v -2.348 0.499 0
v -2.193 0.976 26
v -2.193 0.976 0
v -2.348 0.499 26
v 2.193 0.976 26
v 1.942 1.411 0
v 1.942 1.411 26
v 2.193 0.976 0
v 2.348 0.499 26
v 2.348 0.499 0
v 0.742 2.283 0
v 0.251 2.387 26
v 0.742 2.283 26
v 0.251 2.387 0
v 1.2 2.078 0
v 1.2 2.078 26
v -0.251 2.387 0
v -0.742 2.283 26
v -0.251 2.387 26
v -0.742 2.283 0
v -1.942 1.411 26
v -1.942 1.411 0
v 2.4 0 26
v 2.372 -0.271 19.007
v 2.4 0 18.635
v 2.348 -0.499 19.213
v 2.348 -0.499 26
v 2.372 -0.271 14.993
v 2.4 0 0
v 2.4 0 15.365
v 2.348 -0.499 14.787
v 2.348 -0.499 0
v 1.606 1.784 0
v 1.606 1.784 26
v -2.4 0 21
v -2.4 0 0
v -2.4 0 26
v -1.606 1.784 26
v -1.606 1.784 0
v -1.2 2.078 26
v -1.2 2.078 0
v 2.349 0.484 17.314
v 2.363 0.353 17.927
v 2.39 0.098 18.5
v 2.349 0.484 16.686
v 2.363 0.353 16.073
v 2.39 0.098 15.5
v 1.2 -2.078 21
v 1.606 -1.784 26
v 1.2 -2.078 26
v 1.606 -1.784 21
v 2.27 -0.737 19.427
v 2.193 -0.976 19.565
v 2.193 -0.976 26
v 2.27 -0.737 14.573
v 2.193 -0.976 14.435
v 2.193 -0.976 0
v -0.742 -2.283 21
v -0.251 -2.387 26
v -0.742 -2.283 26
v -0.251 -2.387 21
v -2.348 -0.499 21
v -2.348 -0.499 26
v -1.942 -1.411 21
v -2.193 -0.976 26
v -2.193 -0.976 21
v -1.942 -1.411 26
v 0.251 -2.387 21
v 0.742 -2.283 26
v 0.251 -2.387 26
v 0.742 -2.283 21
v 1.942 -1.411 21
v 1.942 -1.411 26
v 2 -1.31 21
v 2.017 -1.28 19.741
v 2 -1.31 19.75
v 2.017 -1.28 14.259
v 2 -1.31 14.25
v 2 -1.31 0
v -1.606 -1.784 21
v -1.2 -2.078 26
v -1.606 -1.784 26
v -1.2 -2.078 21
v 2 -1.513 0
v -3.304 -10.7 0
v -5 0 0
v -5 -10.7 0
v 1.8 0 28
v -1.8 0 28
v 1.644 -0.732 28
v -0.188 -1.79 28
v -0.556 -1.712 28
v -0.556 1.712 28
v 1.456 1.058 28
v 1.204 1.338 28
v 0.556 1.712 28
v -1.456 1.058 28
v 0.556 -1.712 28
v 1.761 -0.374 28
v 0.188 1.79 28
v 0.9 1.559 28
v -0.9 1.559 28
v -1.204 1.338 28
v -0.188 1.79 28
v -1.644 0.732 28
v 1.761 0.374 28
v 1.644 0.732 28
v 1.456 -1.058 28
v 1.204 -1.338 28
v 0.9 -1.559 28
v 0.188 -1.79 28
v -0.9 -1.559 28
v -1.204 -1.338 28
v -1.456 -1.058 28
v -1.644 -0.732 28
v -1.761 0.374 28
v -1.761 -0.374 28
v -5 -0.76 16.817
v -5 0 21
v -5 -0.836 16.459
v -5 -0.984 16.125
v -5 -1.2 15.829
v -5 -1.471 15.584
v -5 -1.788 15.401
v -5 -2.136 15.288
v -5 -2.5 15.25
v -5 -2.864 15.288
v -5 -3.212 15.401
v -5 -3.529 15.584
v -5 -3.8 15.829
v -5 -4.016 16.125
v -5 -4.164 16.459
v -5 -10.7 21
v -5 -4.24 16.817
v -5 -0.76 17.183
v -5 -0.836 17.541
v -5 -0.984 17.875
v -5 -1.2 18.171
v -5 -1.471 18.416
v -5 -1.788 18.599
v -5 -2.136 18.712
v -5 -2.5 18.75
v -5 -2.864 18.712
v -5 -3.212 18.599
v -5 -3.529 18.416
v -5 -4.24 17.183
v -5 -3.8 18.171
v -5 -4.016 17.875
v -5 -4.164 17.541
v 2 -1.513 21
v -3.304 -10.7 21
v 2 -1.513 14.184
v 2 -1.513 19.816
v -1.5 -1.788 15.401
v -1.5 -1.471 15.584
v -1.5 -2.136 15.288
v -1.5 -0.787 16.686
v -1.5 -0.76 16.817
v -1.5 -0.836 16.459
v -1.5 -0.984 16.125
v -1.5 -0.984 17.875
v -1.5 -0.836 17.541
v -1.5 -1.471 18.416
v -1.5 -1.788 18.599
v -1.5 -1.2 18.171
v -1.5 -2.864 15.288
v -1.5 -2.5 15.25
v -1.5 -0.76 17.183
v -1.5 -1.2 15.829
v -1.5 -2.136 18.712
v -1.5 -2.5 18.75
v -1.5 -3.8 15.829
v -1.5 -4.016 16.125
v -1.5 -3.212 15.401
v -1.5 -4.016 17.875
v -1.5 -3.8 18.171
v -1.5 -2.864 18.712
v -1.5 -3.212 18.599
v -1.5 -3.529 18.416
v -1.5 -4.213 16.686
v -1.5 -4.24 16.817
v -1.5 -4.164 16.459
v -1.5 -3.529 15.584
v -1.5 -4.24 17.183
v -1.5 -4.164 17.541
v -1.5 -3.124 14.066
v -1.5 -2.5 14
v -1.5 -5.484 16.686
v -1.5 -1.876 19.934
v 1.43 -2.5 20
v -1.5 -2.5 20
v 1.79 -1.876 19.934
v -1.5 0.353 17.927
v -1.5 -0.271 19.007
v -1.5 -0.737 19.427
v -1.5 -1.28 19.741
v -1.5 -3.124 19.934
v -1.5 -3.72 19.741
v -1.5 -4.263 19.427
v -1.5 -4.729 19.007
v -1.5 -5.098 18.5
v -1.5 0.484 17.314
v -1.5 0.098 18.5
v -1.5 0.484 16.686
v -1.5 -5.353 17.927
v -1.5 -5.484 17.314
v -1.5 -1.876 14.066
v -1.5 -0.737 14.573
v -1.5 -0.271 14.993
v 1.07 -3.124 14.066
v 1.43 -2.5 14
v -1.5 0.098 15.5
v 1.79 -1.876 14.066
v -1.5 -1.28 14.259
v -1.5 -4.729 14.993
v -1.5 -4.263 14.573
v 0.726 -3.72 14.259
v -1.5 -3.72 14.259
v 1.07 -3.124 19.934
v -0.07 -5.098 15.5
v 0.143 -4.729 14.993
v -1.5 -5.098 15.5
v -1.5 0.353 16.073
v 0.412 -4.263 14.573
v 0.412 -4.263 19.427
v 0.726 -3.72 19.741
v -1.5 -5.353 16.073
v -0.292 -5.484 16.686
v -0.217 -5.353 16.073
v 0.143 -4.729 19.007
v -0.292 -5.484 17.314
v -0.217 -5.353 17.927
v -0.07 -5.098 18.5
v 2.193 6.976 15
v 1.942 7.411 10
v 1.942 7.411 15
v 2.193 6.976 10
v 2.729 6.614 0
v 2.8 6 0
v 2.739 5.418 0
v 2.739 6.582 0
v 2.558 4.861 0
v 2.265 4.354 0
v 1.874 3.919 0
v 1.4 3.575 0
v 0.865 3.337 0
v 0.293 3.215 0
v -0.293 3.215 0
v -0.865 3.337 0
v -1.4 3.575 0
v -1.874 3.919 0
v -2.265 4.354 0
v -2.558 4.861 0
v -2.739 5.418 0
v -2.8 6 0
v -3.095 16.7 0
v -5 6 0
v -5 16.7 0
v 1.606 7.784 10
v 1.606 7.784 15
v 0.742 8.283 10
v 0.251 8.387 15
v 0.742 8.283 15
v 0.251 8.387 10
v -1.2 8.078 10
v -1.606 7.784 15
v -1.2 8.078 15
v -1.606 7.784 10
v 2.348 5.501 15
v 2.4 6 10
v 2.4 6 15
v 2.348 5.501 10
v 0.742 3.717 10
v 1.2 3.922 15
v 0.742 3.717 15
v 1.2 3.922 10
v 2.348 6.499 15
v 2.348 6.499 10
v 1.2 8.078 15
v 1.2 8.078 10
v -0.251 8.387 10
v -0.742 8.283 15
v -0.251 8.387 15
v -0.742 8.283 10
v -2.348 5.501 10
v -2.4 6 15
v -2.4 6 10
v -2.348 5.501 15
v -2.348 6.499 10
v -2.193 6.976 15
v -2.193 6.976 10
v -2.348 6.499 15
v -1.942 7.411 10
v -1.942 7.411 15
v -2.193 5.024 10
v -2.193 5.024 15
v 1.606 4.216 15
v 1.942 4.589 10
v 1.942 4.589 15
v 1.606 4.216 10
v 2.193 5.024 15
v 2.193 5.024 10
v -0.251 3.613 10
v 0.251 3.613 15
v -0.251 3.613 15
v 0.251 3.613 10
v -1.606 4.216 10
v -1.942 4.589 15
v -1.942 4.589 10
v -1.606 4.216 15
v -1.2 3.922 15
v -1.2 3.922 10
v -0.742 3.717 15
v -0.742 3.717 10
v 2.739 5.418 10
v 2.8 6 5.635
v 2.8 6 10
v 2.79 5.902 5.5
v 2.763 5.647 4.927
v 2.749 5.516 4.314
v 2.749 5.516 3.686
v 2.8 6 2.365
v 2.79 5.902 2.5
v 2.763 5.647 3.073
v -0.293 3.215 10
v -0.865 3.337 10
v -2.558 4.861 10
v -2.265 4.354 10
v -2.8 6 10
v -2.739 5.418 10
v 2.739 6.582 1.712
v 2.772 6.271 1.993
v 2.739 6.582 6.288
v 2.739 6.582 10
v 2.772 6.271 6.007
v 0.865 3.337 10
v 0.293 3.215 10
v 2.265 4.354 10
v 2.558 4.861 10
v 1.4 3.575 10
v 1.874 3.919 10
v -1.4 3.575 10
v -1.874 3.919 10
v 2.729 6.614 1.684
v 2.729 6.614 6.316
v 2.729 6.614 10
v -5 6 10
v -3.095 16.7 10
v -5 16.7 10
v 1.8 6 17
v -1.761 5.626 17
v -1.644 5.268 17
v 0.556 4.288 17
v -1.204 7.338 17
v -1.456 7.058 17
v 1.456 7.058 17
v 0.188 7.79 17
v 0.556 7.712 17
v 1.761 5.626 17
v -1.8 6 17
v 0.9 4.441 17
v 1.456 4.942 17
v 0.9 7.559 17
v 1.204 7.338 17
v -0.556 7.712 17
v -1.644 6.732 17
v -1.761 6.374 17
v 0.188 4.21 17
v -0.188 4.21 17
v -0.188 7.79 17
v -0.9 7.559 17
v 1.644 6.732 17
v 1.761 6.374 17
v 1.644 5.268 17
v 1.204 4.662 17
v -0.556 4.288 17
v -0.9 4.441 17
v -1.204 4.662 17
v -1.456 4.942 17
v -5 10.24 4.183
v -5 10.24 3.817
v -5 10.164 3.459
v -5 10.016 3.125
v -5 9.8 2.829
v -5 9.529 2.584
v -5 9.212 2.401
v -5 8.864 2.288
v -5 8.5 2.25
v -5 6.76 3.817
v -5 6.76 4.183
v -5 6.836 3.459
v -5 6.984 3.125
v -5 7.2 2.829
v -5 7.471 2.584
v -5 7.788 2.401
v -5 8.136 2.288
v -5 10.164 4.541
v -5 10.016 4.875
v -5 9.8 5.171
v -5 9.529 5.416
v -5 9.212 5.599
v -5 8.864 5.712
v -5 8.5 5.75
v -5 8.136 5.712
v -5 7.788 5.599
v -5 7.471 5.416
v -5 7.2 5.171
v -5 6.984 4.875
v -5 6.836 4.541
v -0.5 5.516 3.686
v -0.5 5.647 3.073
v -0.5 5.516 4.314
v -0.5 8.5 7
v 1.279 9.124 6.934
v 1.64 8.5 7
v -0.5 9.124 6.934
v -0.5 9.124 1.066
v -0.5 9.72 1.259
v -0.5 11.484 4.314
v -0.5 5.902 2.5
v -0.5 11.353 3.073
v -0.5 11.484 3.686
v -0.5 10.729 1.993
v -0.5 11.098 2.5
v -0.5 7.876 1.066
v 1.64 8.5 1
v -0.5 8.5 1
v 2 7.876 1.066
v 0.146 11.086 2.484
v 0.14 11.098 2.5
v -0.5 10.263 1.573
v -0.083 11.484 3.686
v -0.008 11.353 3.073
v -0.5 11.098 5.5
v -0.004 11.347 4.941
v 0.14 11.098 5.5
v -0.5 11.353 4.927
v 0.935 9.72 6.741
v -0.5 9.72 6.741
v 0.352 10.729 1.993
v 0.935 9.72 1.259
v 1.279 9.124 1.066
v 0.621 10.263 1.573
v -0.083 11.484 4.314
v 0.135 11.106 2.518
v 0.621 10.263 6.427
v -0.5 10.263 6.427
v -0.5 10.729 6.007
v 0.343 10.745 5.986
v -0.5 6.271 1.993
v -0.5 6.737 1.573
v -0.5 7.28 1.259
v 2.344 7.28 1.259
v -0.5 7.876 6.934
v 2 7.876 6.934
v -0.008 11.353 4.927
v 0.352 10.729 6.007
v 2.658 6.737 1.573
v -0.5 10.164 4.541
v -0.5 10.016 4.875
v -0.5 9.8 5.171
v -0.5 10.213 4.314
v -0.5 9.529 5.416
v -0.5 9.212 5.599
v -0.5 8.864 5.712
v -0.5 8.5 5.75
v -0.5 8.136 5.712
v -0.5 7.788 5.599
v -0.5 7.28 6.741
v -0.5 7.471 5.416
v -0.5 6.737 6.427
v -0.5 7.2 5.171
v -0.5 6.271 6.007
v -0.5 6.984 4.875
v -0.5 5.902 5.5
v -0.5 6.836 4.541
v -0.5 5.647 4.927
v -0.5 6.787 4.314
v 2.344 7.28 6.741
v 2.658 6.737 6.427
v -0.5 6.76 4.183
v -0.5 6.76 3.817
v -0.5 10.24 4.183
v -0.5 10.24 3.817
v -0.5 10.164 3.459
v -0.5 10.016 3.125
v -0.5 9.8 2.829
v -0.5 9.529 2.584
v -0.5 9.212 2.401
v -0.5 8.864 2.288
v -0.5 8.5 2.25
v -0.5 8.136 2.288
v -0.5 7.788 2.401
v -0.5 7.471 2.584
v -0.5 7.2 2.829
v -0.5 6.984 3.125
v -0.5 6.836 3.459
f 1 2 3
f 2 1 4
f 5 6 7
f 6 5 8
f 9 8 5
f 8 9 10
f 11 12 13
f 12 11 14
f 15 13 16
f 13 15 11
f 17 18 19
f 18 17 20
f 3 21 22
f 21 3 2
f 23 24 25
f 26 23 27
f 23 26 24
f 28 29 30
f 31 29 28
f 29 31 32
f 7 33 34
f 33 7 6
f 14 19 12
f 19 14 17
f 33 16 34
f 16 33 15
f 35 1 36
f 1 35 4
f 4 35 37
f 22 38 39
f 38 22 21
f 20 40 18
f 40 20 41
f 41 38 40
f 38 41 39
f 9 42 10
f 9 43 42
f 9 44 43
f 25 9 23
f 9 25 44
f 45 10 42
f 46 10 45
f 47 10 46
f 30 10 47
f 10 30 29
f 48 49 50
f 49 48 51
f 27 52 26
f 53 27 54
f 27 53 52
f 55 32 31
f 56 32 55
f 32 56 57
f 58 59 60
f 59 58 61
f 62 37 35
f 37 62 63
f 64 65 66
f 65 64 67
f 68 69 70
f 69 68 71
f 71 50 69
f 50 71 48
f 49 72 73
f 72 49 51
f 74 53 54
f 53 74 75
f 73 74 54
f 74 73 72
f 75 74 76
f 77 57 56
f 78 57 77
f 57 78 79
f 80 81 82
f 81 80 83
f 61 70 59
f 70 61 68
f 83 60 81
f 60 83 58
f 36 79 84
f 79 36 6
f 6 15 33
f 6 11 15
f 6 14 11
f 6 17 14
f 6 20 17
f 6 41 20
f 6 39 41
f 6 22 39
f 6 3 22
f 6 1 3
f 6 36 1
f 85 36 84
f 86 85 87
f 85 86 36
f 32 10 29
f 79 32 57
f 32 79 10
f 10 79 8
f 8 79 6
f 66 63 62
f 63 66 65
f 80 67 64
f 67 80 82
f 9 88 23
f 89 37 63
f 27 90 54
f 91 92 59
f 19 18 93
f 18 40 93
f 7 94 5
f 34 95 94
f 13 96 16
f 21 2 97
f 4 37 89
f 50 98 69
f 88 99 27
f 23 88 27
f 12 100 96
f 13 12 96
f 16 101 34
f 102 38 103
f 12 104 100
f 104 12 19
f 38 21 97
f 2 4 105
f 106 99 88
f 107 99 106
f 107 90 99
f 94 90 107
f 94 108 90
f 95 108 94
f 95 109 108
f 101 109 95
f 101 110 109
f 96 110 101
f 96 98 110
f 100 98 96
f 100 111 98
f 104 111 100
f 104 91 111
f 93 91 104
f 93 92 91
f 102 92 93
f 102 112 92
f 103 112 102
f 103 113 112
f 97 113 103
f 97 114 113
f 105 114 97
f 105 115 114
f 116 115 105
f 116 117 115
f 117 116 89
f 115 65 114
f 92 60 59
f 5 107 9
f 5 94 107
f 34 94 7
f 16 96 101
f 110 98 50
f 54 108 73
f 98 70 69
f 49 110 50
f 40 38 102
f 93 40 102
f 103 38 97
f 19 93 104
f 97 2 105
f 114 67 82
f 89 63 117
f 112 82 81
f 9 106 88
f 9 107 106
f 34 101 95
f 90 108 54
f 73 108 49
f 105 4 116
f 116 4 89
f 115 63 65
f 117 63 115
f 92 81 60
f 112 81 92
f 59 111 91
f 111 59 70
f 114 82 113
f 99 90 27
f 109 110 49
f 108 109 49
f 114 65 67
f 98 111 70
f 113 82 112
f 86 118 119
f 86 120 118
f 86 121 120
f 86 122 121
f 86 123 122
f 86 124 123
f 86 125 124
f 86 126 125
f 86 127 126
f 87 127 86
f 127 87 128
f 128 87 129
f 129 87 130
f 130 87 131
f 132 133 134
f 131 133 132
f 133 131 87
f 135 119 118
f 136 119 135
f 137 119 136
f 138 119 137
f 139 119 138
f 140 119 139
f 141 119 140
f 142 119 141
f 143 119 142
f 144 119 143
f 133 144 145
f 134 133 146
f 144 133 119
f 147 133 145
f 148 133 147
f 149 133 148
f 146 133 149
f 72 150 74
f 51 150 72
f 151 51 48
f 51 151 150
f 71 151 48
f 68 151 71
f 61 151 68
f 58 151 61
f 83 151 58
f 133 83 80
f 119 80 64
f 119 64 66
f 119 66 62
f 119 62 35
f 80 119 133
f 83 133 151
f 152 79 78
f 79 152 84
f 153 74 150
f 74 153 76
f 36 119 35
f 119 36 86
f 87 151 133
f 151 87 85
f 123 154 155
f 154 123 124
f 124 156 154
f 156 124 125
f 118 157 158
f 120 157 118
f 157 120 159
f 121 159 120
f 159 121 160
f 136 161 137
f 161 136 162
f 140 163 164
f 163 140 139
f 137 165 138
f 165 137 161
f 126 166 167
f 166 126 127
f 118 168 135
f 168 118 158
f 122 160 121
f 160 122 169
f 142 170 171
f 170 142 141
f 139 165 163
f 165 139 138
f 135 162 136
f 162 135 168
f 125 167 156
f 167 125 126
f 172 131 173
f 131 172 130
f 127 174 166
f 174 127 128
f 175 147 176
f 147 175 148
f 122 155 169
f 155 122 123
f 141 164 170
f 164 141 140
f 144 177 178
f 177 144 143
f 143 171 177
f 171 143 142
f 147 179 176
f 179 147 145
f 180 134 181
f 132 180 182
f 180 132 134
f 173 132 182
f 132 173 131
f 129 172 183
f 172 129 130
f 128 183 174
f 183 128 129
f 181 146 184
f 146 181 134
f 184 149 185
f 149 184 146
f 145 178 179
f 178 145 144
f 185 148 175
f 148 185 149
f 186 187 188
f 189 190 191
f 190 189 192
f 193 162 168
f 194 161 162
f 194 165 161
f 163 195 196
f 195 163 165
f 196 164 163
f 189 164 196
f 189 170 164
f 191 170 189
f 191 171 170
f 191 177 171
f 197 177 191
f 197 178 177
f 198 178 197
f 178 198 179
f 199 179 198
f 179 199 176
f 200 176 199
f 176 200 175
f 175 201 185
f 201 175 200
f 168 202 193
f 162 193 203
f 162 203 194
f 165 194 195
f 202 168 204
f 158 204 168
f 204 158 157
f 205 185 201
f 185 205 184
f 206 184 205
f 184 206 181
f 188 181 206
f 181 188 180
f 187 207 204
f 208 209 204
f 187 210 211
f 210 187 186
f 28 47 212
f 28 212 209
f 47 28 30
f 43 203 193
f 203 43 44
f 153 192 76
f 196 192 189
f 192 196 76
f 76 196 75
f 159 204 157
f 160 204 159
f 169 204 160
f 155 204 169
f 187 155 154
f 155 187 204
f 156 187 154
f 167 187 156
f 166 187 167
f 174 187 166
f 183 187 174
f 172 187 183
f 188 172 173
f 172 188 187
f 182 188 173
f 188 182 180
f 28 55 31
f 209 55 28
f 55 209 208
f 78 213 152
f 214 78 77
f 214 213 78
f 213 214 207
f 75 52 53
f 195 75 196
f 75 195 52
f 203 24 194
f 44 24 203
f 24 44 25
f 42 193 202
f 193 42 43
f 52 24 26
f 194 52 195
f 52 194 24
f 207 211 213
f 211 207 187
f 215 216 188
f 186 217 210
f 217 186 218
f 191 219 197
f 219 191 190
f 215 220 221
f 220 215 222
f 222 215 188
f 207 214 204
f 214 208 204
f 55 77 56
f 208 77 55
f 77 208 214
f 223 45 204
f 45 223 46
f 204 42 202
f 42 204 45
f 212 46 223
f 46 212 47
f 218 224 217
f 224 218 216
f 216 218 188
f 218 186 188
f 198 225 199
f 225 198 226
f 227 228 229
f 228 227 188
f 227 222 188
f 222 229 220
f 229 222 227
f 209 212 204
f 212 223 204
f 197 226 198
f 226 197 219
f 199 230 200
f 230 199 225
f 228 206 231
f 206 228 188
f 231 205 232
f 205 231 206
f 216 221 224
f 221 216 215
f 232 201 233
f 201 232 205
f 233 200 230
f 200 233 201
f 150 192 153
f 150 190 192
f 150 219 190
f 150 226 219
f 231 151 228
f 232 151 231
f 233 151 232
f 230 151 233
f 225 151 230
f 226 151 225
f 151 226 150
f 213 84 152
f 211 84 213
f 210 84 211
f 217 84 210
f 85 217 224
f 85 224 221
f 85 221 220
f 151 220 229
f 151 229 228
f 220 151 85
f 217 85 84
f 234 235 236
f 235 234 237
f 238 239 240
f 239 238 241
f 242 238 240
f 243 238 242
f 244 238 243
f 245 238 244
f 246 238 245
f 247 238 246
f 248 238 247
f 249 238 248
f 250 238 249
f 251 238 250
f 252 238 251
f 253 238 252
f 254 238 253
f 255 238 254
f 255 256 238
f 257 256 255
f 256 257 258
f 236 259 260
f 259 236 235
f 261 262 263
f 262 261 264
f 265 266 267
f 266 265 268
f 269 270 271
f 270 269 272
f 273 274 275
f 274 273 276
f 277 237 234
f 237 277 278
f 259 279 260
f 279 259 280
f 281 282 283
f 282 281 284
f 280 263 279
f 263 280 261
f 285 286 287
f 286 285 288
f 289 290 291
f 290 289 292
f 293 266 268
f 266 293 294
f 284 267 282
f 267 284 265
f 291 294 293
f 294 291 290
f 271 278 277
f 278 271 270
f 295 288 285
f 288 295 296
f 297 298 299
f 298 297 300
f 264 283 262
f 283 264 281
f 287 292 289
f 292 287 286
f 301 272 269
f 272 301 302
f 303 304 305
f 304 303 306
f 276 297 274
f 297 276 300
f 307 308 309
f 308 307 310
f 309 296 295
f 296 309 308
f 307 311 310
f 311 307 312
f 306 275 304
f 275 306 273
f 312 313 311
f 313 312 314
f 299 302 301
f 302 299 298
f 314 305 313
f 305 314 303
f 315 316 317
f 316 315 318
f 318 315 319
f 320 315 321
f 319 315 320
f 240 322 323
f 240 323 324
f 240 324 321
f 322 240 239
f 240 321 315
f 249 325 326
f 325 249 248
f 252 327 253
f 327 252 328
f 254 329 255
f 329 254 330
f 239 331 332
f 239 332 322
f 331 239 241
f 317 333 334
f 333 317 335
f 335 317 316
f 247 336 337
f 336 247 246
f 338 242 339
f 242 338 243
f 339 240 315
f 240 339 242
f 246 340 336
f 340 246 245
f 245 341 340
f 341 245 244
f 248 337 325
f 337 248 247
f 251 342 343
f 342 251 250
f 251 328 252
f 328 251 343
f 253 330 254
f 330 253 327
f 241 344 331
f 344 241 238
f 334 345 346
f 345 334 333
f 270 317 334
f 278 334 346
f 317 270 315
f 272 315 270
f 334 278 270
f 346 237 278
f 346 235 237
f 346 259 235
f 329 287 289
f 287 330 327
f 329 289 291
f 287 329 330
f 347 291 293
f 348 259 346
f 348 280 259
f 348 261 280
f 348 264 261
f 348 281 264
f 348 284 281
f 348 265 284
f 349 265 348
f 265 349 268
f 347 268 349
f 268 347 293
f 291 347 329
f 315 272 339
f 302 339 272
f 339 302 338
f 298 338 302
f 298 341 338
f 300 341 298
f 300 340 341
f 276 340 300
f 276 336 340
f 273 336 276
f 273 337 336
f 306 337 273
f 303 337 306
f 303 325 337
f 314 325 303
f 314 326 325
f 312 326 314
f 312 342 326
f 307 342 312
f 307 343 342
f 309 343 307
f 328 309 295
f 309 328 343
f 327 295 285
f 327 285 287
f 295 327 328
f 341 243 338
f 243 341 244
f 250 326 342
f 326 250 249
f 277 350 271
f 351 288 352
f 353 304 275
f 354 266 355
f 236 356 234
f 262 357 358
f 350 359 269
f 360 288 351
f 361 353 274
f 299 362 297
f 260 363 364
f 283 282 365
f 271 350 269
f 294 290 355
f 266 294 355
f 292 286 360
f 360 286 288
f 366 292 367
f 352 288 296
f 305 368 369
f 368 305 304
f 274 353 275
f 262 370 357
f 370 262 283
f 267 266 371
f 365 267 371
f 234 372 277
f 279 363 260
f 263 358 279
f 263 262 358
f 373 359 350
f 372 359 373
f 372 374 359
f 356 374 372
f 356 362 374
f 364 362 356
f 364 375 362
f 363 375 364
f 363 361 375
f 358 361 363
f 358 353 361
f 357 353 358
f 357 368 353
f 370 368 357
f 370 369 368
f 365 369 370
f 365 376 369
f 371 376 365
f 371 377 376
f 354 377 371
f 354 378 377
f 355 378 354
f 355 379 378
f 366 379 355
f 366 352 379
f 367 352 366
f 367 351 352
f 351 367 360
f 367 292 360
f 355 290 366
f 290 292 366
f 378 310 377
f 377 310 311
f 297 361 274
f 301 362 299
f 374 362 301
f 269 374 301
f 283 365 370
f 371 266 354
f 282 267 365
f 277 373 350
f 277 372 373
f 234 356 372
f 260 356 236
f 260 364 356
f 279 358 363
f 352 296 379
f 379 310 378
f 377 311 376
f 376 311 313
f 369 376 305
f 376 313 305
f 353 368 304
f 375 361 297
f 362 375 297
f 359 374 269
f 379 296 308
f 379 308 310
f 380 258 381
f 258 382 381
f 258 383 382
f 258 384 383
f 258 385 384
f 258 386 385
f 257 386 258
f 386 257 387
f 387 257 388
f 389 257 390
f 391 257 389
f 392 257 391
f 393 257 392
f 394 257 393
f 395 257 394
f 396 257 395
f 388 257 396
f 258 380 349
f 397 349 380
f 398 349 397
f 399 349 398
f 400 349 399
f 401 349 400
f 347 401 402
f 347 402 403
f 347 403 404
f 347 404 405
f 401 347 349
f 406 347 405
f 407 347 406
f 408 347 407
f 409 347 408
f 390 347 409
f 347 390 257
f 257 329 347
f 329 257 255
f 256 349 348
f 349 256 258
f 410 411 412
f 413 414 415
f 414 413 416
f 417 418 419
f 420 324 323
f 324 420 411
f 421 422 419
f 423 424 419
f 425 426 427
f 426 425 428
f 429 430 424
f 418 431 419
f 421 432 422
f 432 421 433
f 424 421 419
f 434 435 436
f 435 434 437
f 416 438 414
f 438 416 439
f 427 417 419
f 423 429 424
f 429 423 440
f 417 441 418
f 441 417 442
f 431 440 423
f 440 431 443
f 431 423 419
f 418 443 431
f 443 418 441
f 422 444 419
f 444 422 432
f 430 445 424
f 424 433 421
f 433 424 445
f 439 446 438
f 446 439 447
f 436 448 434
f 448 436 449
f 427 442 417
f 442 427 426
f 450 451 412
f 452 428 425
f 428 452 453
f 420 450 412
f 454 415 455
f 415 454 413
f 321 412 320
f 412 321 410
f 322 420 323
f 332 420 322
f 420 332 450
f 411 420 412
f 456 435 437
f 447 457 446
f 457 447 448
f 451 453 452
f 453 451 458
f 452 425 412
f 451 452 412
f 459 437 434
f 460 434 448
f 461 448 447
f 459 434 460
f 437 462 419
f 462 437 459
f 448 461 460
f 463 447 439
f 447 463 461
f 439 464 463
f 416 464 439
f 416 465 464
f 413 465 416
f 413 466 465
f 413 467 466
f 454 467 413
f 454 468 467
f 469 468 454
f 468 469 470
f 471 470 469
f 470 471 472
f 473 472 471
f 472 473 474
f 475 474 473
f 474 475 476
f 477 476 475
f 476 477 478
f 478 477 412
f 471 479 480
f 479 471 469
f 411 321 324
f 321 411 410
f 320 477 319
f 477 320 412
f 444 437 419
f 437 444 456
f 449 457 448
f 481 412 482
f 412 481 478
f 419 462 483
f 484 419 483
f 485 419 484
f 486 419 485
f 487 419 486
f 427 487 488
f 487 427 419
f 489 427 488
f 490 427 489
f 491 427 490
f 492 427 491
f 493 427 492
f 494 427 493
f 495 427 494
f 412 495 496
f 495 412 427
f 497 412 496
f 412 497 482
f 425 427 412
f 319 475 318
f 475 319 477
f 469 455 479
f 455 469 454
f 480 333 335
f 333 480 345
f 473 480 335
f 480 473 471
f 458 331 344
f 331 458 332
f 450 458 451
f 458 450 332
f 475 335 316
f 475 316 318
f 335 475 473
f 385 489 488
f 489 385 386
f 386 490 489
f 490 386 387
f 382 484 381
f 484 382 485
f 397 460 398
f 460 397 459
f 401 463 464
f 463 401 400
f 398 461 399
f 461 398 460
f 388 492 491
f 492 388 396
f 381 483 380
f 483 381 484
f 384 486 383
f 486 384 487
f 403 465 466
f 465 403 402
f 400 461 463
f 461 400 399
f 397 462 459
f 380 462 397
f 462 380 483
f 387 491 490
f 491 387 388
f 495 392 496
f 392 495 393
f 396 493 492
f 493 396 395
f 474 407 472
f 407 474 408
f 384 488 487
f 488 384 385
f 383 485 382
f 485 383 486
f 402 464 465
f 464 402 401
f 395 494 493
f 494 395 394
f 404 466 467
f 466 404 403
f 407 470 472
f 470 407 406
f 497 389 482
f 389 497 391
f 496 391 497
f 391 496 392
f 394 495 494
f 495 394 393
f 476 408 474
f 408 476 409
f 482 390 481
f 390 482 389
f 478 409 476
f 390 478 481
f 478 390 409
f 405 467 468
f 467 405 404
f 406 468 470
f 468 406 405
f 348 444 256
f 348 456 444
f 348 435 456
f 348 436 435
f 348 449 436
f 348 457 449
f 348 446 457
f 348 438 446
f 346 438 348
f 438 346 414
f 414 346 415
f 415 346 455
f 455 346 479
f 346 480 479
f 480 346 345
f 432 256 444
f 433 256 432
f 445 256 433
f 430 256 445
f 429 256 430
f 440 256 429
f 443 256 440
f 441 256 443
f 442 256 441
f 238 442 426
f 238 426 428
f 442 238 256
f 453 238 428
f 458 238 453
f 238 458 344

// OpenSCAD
// PRUSA iteration4
// Einsy cover hinges
// GNU GPL v3
// Josef Průša <iam@josefprusa.cz> and contributors
// http://www.reprap.org/wiki/Prusa_Mendel
// http://prusamendel.org

module upper_hinge()
{
difference()    
{
    union(){
     // body
     cylinder( h = 26, r = 2.4, $fn=30); 
     translate([0,0,26]) cylinder( h = 2, r1 = 2.4, r2 = 1.8, $fn=30); 
     translate( [ -5 , -10.7 , 0 ] ) cube( [ 7 , 10.7 , 21 ] );  
    }
     // M3 screw hole
     translate( [ -12.5 , -2.5 , 17 ] ) rotate( [0,90,0] ) cylinder( h = 20, r = 1.75, $fn=30);  
     translate( [ -1.5 , -2.5 , 17 ] ) rotate( [0,90,0] ) cylinder( h = 9, r = 3, $fn=30); 
     // angle cut
     translate([-2.9,-20,-1]) rotate([0,0,60]) cube([25,5,26]);   
}
}

module lower_hinge()
{
difference()
{   
   union(){ 
    // body   
    translate( [ 0 , 6 , 0 ] ) cylinder( h = 15, r = 2.4, $fn=30); 
    translate( [ 0 , 6 , 0 ] ) cylinder( h = 10, r = 2.8, $fn=30);  
    translate( [ 0 , 6 , 15 ] ) cylinder( h = 2, r1 = 2.4, r2=1.8, $fn=30);  
    translate( [ -5 , 6 , 0 ] ) cube( [ 7 , 10.7 , 10 ] ); 
   }
    // M3 screw
    translate( [ -0.5 , 8.5 , 4 ] ) rotate( [0,90,0] ) cylinder( h = 20, r = 3, $fn=30); 
    translate( [ -12 , 8.5 , 4 ] ) rotate( [0,90,0] ) cylinder( h = 20, r = 1.75, $fn=30); 
    // angle cut
    translate([-5,20,-1]) rotate([0,0,-60]) cube([20,5,20]);   
}
}


upper_hinge();
lower_hinge();
